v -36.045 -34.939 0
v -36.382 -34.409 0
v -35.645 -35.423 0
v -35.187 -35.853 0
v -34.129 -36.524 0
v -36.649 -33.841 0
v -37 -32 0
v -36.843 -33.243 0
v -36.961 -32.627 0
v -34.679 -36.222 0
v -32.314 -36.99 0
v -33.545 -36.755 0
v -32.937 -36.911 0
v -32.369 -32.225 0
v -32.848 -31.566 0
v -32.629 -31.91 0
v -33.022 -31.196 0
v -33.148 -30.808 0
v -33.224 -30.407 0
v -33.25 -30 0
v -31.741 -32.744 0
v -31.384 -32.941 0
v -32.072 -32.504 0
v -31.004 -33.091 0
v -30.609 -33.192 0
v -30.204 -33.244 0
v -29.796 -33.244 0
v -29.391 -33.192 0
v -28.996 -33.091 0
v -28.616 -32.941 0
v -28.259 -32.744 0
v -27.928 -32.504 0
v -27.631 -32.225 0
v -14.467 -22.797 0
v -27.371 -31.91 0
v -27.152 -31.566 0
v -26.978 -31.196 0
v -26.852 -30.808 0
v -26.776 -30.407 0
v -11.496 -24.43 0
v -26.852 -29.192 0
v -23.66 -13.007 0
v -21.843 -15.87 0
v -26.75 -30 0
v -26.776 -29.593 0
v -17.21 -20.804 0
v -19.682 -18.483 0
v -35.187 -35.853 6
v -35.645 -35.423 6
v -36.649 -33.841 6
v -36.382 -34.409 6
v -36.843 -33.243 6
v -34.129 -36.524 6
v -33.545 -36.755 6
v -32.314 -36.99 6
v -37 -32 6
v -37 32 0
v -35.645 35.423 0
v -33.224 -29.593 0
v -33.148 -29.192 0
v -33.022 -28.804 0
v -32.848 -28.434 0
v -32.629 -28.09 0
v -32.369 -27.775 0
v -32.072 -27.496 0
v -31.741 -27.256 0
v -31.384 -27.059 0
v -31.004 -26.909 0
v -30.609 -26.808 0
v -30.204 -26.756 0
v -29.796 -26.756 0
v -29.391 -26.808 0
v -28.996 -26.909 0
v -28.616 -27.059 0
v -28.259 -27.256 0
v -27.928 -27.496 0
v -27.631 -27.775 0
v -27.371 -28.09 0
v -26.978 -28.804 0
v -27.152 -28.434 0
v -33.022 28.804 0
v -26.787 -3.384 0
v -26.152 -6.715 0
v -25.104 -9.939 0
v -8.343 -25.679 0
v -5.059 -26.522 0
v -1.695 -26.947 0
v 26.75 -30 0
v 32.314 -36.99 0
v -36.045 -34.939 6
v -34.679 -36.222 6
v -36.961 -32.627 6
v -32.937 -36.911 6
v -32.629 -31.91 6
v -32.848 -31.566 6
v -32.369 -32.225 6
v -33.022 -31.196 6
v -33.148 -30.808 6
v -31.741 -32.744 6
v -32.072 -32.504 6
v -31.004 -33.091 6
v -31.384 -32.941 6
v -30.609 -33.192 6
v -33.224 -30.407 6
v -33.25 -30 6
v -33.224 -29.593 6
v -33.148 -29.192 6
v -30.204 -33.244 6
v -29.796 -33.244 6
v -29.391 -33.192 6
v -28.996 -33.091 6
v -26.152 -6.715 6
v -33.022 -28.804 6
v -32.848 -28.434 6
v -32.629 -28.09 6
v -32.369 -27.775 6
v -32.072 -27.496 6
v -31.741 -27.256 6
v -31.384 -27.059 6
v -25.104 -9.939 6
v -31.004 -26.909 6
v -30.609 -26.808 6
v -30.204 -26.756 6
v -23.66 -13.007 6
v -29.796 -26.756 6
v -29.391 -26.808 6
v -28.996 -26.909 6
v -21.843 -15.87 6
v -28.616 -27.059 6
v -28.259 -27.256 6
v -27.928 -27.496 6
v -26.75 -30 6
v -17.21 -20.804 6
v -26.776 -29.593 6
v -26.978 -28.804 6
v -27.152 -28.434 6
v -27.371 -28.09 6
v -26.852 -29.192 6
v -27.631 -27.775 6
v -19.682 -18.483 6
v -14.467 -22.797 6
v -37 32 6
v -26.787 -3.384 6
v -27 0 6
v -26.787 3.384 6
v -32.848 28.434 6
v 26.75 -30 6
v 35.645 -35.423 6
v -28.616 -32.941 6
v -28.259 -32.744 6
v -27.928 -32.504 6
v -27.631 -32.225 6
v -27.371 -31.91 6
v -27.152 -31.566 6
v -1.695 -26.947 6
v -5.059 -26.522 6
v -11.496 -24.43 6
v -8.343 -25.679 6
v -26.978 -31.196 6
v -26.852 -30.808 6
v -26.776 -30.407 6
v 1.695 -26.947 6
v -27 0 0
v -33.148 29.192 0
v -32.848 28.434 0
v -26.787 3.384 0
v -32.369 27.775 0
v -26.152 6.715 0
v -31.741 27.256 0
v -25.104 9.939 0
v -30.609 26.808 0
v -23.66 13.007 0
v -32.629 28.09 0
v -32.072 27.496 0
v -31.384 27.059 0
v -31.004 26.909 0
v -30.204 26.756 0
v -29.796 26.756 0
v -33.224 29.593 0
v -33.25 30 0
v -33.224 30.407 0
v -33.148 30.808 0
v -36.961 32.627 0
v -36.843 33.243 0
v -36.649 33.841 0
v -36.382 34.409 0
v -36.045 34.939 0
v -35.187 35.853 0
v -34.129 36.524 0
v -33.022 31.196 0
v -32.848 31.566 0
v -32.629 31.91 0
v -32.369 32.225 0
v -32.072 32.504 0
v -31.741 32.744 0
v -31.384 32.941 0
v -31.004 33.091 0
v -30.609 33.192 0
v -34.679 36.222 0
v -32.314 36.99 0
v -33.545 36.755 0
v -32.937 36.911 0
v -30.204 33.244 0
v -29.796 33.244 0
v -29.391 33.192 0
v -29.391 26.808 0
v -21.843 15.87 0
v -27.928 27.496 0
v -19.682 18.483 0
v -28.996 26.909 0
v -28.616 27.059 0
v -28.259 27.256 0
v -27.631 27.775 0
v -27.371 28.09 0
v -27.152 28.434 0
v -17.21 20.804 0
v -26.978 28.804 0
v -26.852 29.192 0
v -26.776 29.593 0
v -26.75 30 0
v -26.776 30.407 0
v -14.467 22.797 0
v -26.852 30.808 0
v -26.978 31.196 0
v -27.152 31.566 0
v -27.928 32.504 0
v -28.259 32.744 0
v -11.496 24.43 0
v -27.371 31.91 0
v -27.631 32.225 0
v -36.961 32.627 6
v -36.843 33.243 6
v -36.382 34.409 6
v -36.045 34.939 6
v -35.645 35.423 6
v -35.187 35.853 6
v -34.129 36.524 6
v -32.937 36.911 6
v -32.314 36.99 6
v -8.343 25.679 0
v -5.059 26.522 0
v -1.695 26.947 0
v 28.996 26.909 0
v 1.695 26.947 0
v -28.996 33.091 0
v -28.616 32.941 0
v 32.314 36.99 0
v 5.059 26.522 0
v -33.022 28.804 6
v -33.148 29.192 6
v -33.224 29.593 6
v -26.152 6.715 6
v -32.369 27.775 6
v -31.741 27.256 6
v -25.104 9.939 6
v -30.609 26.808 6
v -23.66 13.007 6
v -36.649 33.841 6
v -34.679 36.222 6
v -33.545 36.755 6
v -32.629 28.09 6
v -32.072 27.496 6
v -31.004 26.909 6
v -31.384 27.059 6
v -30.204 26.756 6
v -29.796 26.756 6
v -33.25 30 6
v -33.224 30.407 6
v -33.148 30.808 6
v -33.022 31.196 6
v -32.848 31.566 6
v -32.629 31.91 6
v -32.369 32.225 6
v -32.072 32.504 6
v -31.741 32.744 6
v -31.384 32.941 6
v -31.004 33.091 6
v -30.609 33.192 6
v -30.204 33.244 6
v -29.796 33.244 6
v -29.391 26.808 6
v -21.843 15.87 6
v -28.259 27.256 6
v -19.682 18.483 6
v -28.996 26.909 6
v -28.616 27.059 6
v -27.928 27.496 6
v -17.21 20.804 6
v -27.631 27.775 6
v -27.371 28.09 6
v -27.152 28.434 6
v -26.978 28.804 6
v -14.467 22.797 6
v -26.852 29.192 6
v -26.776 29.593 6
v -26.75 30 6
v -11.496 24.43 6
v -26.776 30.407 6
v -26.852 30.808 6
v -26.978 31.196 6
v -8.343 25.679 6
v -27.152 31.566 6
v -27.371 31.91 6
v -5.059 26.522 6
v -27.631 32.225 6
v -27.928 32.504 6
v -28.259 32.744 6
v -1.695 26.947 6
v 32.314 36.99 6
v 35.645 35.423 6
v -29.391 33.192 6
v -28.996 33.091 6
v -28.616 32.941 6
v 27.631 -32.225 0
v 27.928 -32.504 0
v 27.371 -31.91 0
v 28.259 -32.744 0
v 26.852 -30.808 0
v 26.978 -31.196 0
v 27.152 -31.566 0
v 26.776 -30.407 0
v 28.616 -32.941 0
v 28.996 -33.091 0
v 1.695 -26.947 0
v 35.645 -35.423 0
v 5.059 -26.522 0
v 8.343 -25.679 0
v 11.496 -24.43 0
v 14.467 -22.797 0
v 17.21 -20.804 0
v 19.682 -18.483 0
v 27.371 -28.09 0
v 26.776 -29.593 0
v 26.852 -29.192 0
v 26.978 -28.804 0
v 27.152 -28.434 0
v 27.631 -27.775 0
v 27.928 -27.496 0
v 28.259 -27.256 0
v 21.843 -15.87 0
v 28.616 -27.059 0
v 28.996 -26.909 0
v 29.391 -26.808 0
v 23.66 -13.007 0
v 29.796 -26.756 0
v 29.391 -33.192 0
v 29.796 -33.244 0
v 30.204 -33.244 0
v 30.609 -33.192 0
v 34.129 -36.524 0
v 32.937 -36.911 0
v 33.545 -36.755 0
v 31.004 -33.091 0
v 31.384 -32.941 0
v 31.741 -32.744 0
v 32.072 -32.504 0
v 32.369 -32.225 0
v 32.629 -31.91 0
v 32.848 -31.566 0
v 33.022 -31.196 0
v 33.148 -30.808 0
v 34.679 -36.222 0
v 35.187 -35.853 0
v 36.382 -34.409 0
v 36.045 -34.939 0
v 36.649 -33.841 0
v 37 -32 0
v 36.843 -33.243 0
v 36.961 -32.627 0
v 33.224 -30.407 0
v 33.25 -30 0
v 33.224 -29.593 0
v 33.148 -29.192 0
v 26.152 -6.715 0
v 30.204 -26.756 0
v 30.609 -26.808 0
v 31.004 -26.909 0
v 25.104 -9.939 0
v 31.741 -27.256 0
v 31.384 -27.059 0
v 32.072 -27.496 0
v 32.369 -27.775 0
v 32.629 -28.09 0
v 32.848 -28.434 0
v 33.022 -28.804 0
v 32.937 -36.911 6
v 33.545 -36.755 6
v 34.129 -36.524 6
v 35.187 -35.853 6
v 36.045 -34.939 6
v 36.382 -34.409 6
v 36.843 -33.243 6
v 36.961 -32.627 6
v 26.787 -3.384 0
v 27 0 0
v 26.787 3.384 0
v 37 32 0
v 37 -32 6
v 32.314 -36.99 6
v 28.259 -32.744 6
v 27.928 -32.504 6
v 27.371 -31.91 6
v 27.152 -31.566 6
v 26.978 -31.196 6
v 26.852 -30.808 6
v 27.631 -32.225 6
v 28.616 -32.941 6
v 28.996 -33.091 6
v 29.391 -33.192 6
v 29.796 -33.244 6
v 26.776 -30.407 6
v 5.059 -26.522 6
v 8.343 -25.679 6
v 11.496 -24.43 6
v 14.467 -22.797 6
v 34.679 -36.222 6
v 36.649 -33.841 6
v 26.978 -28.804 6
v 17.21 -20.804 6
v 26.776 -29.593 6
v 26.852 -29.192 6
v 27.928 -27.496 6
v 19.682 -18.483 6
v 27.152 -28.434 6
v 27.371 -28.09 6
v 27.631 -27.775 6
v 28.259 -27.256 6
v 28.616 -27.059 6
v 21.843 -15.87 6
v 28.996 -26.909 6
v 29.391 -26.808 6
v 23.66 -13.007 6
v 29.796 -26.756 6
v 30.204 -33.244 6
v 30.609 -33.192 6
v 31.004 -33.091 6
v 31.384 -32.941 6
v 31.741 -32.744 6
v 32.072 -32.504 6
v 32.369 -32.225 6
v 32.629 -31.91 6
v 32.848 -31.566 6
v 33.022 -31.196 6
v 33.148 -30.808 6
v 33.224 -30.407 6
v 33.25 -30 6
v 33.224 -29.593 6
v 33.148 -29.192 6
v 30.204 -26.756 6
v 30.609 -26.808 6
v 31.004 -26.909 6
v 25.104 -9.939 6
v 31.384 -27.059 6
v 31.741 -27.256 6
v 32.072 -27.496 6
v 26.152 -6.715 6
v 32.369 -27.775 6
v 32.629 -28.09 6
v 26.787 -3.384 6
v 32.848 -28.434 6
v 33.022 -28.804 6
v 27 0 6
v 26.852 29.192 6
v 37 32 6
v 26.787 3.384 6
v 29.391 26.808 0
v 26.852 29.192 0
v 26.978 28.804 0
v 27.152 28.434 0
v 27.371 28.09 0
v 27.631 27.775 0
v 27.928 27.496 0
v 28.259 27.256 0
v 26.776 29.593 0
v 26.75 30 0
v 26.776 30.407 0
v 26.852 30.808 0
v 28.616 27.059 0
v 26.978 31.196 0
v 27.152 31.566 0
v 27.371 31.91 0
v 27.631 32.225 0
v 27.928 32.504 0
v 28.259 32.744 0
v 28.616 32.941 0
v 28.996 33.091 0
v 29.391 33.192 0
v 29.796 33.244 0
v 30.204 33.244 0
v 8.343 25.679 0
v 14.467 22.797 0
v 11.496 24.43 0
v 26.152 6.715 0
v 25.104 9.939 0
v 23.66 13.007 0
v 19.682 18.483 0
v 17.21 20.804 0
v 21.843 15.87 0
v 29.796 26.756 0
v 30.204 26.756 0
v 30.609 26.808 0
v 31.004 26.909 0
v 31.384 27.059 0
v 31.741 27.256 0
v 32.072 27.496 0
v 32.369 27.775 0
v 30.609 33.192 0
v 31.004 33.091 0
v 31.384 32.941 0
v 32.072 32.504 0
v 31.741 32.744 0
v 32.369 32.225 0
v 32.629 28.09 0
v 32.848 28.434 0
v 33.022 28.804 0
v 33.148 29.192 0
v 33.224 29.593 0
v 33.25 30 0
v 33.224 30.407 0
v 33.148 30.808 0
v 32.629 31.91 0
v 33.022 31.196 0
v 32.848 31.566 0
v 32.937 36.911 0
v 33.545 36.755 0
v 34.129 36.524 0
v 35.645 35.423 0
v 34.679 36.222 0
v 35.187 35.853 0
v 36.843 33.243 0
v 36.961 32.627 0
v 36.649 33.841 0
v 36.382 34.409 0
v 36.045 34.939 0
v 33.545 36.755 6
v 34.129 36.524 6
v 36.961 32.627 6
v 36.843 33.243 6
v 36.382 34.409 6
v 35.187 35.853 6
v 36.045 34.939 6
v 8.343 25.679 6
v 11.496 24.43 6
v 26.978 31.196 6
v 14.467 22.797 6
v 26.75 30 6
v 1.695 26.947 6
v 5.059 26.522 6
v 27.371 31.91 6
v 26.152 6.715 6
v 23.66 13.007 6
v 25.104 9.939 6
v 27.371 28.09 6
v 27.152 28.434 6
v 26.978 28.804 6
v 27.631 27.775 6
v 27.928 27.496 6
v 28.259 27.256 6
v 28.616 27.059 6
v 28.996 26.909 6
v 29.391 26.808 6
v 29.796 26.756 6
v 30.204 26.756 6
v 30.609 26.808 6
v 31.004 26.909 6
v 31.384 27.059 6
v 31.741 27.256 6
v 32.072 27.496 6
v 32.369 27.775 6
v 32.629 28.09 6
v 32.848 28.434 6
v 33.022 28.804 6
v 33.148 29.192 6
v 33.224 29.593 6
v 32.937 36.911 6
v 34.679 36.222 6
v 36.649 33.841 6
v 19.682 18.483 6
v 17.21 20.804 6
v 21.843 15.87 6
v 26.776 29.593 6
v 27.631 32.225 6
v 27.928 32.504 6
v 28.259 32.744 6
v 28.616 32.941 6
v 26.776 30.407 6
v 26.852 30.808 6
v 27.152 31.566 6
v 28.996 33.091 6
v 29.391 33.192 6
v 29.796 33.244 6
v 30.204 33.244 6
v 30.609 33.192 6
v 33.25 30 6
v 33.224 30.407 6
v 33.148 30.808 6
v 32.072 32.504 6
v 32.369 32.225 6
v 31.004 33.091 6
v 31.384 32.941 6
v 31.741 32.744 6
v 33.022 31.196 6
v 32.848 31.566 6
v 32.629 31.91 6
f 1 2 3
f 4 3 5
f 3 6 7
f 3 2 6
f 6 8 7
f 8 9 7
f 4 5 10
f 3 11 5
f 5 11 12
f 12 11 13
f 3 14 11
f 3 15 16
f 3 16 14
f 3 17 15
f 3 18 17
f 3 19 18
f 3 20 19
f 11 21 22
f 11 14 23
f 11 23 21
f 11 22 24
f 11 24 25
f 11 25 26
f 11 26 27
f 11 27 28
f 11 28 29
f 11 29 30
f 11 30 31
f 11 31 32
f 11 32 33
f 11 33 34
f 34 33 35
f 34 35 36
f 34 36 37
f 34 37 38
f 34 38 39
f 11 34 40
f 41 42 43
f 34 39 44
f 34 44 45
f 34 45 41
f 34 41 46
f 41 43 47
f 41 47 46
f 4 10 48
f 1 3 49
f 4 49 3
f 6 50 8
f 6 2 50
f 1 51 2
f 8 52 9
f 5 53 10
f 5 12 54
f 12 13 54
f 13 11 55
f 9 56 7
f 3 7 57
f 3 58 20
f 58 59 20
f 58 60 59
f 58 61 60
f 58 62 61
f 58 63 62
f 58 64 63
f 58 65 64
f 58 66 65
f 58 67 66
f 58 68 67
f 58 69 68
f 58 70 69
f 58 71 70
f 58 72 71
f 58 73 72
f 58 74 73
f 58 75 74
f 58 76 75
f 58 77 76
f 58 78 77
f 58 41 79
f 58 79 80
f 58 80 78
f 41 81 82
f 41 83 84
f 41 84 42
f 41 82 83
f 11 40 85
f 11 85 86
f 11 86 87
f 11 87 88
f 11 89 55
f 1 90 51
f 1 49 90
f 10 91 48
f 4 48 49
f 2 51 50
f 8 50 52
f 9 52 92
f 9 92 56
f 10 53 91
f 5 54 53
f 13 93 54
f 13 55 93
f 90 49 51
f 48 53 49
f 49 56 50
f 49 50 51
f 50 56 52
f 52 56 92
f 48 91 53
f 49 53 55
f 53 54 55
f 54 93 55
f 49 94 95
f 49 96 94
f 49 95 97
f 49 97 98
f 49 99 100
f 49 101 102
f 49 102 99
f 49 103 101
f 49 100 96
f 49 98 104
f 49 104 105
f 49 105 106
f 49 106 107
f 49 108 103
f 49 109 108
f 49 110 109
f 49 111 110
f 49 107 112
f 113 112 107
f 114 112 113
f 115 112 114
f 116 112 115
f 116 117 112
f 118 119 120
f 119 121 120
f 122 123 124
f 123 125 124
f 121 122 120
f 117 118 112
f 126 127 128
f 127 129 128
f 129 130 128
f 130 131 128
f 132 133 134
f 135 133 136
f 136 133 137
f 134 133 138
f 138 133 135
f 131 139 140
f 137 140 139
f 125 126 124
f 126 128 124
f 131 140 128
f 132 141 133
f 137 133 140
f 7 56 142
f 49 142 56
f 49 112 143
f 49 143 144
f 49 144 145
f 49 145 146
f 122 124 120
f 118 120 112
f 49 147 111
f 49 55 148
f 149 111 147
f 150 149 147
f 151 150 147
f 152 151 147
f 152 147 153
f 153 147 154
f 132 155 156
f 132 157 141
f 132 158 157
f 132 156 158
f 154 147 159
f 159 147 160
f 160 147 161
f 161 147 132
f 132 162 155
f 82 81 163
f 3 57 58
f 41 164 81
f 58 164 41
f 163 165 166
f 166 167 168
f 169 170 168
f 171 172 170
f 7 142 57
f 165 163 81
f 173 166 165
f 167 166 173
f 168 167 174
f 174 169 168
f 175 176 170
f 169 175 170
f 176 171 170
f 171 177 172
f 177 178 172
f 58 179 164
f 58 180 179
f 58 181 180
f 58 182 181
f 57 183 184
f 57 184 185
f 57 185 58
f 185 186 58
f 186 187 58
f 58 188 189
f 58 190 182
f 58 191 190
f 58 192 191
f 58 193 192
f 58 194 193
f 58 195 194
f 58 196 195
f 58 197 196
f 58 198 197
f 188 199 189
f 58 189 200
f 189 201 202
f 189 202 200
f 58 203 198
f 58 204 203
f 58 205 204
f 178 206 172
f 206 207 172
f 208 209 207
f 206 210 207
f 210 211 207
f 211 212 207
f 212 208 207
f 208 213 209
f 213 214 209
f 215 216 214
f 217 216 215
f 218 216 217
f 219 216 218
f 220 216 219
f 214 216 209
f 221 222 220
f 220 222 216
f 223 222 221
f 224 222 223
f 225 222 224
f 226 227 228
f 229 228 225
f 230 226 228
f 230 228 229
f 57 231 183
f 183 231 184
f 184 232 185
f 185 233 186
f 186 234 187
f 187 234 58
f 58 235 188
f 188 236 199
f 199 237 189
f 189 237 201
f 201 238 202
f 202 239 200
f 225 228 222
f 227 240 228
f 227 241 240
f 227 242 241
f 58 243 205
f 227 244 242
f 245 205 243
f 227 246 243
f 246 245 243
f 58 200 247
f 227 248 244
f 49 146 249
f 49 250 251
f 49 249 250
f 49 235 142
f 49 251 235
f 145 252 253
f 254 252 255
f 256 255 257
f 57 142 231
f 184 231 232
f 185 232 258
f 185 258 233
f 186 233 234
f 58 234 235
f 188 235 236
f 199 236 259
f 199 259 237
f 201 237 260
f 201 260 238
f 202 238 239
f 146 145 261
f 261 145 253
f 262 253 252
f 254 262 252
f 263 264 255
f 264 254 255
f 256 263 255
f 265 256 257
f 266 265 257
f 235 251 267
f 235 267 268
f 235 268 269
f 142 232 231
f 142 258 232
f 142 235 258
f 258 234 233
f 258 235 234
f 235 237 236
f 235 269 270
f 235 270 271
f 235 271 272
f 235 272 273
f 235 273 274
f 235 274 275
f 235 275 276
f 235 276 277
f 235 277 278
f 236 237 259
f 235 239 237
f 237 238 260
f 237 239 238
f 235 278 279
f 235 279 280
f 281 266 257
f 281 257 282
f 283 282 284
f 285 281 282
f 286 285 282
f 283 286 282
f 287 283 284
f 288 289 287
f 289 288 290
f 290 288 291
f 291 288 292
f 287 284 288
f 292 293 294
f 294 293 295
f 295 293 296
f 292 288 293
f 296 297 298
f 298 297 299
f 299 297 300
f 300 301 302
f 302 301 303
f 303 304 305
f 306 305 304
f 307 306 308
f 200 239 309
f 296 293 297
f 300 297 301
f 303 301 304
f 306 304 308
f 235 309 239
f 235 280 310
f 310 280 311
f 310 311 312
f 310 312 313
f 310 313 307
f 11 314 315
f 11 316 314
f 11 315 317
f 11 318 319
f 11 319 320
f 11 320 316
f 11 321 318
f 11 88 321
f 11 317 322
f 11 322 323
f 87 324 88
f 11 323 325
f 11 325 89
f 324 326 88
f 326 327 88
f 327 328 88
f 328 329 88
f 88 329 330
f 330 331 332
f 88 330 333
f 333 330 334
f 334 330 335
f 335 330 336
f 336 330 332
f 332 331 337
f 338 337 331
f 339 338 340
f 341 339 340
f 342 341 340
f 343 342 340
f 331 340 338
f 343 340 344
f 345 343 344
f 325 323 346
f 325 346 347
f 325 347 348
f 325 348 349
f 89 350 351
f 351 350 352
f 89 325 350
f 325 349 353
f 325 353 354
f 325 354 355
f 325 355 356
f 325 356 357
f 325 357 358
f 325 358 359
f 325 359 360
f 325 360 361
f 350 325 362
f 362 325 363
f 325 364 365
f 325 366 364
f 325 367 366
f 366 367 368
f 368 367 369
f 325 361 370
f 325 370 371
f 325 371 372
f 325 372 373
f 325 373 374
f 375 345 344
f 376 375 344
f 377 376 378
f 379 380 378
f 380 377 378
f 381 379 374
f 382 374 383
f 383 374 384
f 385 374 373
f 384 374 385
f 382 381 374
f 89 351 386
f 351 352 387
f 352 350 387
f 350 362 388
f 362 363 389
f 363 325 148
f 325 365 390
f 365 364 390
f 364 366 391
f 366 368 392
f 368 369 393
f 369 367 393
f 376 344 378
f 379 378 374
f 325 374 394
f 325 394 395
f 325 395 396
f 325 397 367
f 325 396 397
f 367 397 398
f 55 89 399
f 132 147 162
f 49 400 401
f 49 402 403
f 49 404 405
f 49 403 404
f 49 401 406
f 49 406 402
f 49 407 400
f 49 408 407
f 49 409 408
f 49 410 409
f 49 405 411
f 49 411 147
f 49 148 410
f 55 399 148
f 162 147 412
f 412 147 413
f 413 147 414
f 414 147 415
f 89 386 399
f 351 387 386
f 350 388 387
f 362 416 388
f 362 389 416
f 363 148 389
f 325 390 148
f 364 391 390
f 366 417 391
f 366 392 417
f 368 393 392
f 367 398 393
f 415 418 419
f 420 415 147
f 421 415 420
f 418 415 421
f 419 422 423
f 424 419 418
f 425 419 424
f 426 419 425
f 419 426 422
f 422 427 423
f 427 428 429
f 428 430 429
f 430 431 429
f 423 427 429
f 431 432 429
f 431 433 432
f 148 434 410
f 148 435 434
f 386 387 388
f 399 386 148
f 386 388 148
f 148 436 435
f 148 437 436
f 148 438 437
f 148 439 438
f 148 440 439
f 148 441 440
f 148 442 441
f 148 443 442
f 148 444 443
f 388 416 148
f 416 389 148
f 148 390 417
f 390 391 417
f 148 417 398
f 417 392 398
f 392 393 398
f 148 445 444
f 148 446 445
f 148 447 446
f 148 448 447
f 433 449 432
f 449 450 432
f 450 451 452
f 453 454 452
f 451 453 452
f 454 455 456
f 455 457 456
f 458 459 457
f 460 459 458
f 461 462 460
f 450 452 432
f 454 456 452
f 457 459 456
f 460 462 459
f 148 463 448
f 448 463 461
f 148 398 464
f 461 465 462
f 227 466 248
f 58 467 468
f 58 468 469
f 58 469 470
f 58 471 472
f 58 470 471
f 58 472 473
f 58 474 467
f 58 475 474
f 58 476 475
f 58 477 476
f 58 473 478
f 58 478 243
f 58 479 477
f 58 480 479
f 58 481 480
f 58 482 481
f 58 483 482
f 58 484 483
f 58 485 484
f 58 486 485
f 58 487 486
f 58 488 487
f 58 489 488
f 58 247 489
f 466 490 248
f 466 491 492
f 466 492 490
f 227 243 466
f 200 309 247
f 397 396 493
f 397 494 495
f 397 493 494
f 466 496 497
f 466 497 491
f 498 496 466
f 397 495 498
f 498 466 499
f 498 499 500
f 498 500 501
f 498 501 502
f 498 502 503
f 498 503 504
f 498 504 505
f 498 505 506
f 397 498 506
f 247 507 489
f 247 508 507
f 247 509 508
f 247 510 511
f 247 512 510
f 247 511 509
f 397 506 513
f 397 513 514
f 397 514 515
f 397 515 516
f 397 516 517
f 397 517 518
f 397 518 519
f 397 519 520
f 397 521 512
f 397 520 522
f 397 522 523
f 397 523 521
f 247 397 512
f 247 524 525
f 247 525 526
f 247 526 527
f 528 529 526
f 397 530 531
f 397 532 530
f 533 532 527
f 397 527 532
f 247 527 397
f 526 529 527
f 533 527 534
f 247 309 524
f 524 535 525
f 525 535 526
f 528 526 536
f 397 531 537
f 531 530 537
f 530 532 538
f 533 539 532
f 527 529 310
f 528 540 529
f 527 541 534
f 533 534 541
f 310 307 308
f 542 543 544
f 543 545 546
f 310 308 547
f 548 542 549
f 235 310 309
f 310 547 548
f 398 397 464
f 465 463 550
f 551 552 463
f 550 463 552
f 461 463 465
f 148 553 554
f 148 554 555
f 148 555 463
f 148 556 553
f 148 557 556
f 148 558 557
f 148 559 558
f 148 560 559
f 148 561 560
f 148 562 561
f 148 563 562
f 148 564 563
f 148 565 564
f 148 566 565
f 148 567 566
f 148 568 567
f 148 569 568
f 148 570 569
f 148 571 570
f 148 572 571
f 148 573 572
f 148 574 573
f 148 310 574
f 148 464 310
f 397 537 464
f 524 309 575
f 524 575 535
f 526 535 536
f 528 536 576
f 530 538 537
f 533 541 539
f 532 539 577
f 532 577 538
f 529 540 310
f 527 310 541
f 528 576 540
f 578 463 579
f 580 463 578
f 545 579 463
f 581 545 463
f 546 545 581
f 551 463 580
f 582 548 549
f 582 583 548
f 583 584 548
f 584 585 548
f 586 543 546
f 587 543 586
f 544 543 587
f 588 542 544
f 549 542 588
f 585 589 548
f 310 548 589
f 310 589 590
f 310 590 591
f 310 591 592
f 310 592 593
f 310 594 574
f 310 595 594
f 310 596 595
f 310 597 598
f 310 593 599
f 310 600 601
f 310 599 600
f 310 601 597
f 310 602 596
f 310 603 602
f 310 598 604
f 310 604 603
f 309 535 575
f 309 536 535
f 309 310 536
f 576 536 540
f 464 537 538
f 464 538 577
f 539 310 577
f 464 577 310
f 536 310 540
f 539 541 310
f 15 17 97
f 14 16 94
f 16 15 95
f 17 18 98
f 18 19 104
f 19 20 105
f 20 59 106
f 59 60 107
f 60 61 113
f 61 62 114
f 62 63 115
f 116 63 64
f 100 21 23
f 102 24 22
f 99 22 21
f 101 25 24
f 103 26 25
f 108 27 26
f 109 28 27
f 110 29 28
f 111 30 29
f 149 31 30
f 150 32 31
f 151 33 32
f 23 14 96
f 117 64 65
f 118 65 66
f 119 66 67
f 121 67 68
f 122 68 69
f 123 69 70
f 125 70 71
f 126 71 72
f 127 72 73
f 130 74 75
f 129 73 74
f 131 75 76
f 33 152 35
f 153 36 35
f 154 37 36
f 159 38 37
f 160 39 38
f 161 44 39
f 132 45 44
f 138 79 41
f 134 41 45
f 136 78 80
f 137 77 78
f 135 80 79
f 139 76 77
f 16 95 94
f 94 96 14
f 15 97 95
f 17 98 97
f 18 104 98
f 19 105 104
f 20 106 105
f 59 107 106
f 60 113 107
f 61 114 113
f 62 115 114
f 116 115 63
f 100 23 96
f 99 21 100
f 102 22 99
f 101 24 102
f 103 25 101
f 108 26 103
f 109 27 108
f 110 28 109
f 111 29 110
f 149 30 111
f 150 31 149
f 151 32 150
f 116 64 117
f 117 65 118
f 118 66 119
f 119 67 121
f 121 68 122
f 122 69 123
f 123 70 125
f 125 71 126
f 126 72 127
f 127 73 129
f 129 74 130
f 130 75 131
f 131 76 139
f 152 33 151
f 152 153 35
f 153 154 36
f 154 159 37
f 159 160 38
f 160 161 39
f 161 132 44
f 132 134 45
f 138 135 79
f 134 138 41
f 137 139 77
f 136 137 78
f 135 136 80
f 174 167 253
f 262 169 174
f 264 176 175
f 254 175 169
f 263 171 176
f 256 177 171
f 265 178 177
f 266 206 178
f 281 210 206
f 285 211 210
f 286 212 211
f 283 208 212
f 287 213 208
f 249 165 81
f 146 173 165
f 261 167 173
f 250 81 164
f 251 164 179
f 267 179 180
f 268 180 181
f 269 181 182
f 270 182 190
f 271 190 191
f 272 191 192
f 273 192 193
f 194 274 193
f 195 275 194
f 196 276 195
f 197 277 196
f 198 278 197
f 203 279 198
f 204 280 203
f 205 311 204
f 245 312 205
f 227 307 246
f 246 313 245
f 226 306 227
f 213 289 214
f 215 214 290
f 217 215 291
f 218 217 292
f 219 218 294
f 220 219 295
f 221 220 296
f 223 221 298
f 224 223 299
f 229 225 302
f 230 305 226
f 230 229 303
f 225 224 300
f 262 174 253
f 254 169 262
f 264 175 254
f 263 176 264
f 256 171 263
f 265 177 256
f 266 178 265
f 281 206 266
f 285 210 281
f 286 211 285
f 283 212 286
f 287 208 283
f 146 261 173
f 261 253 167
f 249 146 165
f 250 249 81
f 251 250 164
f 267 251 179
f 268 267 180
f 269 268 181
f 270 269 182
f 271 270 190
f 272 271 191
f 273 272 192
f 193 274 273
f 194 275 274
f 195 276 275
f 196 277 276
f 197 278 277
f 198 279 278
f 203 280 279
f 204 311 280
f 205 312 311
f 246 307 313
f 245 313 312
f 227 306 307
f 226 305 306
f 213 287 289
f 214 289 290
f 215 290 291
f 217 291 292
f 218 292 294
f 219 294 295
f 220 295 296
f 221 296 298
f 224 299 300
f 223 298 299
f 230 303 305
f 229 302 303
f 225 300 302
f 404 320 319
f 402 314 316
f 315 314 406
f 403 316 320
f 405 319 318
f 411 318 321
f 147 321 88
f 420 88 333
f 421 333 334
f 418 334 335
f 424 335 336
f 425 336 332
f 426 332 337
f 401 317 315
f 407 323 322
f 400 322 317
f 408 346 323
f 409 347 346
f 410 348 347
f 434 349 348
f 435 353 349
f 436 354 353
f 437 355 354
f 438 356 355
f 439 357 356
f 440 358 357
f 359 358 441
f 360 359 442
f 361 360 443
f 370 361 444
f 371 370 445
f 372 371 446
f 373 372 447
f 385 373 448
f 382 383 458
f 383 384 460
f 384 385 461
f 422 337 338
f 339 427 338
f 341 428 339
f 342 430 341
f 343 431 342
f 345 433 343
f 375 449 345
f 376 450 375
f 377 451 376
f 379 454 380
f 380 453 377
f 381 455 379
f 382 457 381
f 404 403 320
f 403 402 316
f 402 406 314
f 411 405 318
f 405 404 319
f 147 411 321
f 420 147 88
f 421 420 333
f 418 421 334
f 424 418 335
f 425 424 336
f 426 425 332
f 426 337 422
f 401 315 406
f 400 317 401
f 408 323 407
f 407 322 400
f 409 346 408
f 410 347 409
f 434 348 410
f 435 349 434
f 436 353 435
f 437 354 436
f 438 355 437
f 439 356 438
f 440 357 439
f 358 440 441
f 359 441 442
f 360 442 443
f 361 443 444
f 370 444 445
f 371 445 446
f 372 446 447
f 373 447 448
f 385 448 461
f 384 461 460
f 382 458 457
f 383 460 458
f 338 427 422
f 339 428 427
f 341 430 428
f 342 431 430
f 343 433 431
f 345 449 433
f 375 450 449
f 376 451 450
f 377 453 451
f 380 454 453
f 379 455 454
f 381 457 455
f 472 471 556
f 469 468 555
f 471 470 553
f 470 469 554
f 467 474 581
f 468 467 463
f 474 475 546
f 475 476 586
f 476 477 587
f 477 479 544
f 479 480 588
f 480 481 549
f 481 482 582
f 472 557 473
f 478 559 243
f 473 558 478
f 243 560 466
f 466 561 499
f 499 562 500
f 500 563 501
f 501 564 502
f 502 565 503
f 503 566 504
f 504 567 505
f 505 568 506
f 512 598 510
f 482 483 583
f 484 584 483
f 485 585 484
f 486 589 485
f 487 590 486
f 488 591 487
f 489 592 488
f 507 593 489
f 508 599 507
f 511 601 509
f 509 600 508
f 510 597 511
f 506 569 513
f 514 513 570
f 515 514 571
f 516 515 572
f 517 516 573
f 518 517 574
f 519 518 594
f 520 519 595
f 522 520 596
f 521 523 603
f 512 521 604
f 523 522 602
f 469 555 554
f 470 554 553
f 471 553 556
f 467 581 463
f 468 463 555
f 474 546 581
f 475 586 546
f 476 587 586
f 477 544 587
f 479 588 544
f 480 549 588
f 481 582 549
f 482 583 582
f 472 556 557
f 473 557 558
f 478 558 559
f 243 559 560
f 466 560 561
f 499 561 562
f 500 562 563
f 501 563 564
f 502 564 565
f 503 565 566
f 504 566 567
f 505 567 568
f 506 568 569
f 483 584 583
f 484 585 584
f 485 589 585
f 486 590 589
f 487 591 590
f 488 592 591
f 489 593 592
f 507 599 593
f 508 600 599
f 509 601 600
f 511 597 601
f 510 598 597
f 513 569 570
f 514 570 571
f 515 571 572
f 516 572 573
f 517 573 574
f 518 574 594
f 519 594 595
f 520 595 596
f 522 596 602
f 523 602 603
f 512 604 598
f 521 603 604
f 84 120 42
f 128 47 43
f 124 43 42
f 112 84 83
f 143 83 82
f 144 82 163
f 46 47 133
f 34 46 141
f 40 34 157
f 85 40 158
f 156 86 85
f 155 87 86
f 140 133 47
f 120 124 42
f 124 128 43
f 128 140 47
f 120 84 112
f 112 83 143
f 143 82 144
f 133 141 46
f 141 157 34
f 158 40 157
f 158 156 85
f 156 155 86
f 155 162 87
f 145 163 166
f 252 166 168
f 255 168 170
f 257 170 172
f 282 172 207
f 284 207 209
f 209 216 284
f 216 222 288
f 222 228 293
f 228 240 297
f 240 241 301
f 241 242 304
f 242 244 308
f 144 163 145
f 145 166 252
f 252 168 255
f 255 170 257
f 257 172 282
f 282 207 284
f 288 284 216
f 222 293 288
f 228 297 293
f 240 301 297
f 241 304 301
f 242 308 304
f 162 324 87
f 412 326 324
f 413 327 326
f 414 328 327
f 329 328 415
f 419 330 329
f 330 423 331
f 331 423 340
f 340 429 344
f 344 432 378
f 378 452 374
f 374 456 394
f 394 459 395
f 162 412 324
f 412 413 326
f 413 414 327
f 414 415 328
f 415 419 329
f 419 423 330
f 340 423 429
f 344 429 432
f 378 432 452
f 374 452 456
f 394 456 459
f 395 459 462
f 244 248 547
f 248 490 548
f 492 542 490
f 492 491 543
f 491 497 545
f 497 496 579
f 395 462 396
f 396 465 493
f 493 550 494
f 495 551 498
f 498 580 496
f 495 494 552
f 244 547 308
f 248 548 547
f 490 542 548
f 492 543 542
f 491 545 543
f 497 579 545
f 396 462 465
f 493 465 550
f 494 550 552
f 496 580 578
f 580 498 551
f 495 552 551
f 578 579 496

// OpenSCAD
$fn = 50;

difference() {
	union() {
		hull() {
			translate(v = [-32.0, 32.0, 0]) {
				cylinder(h = 6, r = 5);
			}
			translate(v = [32.0, 32.0, 0]) {
				cylinder(h = 6, r = 5);
			}
			translate(v = [-32.0, -32.0, 0]) {
				cylinder(h = 6, r = 5);
			}
			translate(v = [32.0, -32.0, 0]) {
				cylinder(h = 6, r = 5);
			}
		}
	}
	union() {
		translate(v = [-30.0, -30.0, -100.0]) {
			cylinder(h = 200, r = 3.25);
		}
		translate(v = [-30.0, 30.0, -100.0]) {
			cylinder(h = 200, r = 3.25);
		}
		translate(v = [30.0, -30.0, -100.0]) {
			cylinder(h = 200, r = 3.25);
		}
		translate(v = [30.0, 30.0, -100.0]) {
			cylinder(h = 200, r = 3.25);
		}
		translate(v = [-30.0, -30.0, -100.0]) {
			cylinder(h = 200, r = 1.8);
		}
		translate(v = [-30.0, 30.0, -100.0]) {
			cylinder(h = 200, r = 1.8);
		}
		translate(v = [30.0, -30.0, -100.0]) {
			cylinder(h = 200, r = 1.8);
		}
		translate(v = [30.0, 30.0, -100.0]) {
			cylinder(h = 200, r = 1.8);
		}
		cylinder(h = 6, r = 27.0);
	}
}
